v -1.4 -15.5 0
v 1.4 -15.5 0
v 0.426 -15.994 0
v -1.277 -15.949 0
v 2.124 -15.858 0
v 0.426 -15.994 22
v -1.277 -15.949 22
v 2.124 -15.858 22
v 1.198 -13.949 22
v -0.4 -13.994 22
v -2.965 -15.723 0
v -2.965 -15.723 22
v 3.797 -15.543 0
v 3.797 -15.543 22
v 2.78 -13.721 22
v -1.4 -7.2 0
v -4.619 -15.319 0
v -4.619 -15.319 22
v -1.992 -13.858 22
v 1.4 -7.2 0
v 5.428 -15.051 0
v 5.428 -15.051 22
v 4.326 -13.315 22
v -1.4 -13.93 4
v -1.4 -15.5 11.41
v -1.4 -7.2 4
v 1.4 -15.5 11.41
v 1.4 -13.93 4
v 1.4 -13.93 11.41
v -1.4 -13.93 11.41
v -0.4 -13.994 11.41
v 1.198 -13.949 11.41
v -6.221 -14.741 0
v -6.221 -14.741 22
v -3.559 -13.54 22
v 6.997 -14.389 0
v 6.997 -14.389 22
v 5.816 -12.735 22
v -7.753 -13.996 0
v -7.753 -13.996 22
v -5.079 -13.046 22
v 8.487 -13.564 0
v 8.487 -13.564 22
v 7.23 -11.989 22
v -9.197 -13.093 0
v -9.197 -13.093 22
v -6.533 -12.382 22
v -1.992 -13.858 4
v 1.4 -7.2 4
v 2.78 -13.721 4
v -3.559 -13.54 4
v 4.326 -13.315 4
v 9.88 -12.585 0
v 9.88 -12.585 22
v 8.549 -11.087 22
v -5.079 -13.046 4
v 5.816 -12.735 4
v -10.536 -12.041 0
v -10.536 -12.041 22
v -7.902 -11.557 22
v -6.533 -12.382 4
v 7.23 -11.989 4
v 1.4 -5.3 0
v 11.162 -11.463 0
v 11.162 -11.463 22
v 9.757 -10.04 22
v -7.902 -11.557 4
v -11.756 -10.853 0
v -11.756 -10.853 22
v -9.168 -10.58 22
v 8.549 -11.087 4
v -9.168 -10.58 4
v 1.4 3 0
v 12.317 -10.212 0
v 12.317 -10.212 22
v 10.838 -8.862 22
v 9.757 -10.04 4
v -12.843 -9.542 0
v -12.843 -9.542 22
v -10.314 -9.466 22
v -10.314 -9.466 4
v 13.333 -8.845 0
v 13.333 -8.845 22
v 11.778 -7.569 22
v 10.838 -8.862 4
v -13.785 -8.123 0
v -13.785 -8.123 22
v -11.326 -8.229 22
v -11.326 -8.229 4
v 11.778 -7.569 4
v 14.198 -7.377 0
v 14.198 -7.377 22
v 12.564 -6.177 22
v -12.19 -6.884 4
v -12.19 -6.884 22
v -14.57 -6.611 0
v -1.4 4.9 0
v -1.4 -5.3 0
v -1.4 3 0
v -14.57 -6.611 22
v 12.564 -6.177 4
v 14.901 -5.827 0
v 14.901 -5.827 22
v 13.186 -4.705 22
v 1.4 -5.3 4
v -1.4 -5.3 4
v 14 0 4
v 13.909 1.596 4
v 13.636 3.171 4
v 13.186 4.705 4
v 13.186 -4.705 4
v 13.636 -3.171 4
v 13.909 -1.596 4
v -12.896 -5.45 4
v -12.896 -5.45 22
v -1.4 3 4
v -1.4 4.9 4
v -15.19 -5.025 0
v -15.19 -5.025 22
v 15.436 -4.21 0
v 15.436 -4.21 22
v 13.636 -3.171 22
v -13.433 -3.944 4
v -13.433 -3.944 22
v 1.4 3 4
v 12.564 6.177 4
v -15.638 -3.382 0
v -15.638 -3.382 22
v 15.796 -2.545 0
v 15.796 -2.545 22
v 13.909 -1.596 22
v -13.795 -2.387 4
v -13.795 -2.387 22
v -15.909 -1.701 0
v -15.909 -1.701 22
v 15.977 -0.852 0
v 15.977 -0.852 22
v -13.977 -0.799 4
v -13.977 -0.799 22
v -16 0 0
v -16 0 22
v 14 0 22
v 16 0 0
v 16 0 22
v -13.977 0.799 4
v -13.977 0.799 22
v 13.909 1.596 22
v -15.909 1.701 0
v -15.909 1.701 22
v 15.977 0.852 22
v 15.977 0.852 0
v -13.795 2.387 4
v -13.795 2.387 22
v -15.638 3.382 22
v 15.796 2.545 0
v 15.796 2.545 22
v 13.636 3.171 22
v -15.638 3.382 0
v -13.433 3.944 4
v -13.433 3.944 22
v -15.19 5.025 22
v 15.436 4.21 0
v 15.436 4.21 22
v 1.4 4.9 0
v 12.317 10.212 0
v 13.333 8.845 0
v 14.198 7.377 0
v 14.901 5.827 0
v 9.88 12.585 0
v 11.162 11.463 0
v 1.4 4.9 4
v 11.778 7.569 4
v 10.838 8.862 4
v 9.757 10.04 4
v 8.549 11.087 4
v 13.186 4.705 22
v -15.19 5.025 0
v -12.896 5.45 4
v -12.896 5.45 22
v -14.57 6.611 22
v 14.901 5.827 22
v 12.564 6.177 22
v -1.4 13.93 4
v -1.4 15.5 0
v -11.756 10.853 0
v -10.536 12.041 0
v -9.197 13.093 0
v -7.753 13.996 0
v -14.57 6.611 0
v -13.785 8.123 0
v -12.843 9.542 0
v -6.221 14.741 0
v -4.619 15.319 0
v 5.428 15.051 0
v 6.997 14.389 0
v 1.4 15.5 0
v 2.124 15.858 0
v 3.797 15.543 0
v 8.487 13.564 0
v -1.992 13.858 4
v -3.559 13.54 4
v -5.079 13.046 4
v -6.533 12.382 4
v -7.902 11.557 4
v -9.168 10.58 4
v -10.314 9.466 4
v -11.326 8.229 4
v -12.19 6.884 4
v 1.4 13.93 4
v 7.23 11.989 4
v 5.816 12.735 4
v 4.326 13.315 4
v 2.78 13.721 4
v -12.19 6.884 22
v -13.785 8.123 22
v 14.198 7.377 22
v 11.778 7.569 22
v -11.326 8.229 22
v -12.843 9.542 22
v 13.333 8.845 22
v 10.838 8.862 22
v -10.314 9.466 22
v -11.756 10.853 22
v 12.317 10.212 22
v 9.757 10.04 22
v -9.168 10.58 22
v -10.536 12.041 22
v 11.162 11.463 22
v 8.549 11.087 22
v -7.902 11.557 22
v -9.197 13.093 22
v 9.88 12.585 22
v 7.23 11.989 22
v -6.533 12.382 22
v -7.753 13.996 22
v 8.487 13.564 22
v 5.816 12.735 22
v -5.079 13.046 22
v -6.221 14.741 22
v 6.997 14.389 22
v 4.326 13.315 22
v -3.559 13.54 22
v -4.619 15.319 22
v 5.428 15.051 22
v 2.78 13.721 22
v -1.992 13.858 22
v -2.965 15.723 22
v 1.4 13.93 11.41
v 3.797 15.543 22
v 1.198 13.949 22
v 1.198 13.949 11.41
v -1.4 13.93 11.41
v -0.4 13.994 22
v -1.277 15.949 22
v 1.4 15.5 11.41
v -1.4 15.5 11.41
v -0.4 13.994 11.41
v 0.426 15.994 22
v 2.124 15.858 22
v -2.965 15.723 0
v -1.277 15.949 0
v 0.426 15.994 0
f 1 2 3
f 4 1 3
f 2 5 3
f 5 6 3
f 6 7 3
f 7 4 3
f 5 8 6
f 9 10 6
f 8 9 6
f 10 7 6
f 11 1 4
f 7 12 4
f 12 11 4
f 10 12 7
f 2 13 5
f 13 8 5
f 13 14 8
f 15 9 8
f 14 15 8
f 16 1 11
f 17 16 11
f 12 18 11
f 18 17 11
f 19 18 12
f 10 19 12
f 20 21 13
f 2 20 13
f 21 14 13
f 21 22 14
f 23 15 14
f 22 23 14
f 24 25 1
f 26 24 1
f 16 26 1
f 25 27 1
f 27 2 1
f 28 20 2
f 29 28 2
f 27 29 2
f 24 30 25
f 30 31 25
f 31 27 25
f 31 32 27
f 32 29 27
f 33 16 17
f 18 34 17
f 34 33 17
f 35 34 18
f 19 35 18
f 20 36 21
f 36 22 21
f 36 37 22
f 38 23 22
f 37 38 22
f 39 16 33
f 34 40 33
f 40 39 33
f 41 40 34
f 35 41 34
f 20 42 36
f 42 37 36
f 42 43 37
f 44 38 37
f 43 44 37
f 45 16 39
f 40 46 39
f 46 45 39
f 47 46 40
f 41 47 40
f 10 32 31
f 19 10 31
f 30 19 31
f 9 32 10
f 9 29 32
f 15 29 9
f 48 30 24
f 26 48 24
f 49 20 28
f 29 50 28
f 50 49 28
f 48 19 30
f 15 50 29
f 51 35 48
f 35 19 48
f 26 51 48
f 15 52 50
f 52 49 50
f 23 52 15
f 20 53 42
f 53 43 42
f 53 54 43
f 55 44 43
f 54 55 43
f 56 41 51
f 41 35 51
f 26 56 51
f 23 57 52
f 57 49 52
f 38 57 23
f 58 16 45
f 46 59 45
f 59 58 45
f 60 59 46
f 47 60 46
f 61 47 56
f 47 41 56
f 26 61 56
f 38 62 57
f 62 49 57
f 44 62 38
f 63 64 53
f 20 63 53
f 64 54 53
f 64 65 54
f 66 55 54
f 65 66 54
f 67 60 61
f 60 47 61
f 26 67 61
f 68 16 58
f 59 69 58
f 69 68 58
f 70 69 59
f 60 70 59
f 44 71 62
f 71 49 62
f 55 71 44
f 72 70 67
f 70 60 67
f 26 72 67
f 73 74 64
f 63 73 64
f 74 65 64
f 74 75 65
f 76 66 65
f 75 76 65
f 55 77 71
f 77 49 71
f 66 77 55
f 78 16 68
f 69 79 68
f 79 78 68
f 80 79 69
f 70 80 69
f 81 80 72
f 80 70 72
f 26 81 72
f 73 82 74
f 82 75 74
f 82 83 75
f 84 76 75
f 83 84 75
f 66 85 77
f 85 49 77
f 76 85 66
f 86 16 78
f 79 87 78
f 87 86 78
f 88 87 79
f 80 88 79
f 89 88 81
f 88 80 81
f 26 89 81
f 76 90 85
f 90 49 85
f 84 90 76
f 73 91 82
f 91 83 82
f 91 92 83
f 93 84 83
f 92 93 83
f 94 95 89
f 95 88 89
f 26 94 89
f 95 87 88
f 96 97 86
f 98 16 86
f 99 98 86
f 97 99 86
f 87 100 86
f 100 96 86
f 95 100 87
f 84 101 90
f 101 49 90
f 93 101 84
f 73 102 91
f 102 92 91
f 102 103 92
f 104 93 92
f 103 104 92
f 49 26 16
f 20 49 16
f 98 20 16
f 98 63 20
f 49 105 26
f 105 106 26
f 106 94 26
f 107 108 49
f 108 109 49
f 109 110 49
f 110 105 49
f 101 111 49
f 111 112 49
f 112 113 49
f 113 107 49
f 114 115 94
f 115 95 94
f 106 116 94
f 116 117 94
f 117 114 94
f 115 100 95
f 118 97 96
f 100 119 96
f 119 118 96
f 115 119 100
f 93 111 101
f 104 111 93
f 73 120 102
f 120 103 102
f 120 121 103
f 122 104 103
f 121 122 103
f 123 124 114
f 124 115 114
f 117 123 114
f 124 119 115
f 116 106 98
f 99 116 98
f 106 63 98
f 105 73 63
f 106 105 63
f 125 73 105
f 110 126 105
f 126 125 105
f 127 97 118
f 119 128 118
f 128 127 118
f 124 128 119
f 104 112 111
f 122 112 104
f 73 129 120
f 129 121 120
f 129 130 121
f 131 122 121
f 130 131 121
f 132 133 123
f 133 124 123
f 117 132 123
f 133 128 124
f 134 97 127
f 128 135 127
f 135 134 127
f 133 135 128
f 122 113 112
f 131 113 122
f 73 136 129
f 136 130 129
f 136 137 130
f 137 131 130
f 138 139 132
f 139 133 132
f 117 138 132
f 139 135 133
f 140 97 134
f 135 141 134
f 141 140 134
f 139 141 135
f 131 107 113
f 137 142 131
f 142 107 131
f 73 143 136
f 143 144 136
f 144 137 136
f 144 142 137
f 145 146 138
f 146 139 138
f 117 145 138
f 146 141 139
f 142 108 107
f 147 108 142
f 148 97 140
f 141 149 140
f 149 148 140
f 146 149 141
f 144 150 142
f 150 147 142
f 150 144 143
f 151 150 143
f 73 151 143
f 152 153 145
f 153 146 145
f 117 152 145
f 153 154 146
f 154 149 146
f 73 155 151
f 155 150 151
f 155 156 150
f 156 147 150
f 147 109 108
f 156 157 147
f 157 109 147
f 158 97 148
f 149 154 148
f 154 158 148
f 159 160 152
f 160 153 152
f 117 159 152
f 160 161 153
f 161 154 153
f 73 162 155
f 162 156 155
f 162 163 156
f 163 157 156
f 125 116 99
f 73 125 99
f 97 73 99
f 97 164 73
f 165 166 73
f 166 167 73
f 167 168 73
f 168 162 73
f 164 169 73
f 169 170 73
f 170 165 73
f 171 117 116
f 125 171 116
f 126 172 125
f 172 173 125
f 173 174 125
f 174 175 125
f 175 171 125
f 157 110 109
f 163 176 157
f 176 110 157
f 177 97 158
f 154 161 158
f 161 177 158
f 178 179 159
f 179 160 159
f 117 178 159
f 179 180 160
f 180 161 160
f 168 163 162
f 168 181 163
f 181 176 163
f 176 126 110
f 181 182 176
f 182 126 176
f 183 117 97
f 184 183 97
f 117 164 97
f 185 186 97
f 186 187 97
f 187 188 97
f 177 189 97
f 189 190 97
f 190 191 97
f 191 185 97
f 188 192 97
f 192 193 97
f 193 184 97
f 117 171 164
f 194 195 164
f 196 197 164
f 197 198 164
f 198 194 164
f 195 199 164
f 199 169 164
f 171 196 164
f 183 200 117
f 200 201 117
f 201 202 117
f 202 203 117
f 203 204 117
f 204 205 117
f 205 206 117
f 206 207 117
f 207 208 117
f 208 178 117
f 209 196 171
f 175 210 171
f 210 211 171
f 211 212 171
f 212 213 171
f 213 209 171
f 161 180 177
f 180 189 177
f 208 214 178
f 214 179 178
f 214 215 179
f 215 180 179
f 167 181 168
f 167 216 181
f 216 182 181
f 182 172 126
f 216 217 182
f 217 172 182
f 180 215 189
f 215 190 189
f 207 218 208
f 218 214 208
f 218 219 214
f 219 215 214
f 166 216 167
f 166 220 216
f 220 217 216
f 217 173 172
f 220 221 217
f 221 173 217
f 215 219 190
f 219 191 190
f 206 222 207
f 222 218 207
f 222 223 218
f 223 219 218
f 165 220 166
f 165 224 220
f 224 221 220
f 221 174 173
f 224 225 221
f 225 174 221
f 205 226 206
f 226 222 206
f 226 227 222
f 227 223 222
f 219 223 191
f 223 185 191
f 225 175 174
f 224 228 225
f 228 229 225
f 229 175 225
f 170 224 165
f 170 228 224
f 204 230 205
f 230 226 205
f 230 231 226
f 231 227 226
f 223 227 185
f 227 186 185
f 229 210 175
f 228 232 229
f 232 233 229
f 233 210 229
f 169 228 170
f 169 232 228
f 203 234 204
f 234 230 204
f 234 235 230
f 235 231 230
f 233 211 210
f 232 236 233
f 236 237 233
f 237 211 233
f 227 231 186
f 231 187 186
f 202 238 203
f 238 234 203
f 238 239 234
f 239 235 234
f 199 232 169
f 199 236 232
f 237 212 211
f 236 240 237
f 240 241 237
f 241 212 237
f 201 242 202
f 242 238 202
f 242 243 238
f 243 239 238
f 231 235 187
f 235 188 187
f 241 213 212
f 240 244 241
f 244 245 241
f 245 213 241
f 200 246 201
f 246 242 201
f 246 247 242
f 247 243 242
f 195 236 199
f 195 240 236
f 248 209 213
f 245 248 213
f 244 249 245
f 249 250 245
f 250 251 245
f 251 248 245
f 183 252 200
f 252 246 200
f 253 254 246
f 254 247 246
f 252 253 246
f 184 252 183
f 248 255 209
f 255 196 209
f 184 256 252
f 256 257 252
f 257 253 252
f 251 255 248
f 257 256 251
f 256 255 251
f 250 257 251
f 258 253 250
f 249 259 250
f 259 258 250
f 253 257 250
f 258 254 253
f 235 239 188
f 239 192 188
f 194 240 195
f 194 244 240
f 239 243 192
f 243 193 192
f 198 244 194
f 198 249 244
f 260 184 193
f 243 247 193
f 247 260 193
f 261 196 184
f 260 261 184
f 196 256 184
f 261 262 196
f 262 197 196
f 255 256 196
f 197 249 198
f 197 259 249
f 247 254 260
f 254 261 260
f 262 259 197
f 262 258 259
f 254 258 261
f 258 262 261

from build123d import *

# Parameters (mm, degrees)
ESQUISSE1_R             = 16
BOSS_EXTRU_1_DEPTH      = 22
ESQUISSE2_W             = 2.8
ESQUISSE2_H             = 31
ENL_V_MAT_EXTRU_1_DEPTH = 11.41
ESQUISSE3_W             = 2.8
ESQUISSE3_H             = 1.9
BOSS_EXTRU_2_DEPTH      = 5
ESQUISSE4_R             = 14
ENL_V_MAT_EXTRU_2_DEPTH = 18


with BuildPart() as part:
    # Esquisse1 → Boss.-Extru.1 (new body)
    with BuildSketch(Plane.XY):
        Circle(ESQUISSE1_R)
    extrude(amount=BOSS_EXTRU_1_DEPTH)

    # Esquisse2 → Enlèv. mat.-Extru.1 (cut)
    with BuildSketch(Plane.XY):
        Rectangle(ESQUISSE2_W, ESQUISSE2_H)
    extrude(amount=ENL_V_MAT_EXTRU_1_DEPTH, mode=Mode.SUBTRACT)

    # Esquisse3 → Boss.-Extru.2 (add)
    with BuildSketch(Plane(origin=(0, 0, 0), x_dir=(-1, 0, 0), z_dir=(0, 0, -1))):
        with Locations((0, -6.25)):
            Rectangle(ESQUISSE3_W, ESQUISSE3_H)
        with Locations((0, 3.95)):
            Rectangle(ESQUISSE3_W, ESQUISSE3_H)
    extrude(amount=-BOSS_EXTRU_2_DEPTH)

    # Esquisse4 → Enlèv. mat.-Extru.2 (cut)
    with BuildSketch(Plane.XY.offset(22)):
        Circle(ESQUISSE4_R)
    extrude(amount=-ENL_V_MAT_EXTRU_2_DEPTH, mode=Mode.SUBTRACT)


solid = part.part
